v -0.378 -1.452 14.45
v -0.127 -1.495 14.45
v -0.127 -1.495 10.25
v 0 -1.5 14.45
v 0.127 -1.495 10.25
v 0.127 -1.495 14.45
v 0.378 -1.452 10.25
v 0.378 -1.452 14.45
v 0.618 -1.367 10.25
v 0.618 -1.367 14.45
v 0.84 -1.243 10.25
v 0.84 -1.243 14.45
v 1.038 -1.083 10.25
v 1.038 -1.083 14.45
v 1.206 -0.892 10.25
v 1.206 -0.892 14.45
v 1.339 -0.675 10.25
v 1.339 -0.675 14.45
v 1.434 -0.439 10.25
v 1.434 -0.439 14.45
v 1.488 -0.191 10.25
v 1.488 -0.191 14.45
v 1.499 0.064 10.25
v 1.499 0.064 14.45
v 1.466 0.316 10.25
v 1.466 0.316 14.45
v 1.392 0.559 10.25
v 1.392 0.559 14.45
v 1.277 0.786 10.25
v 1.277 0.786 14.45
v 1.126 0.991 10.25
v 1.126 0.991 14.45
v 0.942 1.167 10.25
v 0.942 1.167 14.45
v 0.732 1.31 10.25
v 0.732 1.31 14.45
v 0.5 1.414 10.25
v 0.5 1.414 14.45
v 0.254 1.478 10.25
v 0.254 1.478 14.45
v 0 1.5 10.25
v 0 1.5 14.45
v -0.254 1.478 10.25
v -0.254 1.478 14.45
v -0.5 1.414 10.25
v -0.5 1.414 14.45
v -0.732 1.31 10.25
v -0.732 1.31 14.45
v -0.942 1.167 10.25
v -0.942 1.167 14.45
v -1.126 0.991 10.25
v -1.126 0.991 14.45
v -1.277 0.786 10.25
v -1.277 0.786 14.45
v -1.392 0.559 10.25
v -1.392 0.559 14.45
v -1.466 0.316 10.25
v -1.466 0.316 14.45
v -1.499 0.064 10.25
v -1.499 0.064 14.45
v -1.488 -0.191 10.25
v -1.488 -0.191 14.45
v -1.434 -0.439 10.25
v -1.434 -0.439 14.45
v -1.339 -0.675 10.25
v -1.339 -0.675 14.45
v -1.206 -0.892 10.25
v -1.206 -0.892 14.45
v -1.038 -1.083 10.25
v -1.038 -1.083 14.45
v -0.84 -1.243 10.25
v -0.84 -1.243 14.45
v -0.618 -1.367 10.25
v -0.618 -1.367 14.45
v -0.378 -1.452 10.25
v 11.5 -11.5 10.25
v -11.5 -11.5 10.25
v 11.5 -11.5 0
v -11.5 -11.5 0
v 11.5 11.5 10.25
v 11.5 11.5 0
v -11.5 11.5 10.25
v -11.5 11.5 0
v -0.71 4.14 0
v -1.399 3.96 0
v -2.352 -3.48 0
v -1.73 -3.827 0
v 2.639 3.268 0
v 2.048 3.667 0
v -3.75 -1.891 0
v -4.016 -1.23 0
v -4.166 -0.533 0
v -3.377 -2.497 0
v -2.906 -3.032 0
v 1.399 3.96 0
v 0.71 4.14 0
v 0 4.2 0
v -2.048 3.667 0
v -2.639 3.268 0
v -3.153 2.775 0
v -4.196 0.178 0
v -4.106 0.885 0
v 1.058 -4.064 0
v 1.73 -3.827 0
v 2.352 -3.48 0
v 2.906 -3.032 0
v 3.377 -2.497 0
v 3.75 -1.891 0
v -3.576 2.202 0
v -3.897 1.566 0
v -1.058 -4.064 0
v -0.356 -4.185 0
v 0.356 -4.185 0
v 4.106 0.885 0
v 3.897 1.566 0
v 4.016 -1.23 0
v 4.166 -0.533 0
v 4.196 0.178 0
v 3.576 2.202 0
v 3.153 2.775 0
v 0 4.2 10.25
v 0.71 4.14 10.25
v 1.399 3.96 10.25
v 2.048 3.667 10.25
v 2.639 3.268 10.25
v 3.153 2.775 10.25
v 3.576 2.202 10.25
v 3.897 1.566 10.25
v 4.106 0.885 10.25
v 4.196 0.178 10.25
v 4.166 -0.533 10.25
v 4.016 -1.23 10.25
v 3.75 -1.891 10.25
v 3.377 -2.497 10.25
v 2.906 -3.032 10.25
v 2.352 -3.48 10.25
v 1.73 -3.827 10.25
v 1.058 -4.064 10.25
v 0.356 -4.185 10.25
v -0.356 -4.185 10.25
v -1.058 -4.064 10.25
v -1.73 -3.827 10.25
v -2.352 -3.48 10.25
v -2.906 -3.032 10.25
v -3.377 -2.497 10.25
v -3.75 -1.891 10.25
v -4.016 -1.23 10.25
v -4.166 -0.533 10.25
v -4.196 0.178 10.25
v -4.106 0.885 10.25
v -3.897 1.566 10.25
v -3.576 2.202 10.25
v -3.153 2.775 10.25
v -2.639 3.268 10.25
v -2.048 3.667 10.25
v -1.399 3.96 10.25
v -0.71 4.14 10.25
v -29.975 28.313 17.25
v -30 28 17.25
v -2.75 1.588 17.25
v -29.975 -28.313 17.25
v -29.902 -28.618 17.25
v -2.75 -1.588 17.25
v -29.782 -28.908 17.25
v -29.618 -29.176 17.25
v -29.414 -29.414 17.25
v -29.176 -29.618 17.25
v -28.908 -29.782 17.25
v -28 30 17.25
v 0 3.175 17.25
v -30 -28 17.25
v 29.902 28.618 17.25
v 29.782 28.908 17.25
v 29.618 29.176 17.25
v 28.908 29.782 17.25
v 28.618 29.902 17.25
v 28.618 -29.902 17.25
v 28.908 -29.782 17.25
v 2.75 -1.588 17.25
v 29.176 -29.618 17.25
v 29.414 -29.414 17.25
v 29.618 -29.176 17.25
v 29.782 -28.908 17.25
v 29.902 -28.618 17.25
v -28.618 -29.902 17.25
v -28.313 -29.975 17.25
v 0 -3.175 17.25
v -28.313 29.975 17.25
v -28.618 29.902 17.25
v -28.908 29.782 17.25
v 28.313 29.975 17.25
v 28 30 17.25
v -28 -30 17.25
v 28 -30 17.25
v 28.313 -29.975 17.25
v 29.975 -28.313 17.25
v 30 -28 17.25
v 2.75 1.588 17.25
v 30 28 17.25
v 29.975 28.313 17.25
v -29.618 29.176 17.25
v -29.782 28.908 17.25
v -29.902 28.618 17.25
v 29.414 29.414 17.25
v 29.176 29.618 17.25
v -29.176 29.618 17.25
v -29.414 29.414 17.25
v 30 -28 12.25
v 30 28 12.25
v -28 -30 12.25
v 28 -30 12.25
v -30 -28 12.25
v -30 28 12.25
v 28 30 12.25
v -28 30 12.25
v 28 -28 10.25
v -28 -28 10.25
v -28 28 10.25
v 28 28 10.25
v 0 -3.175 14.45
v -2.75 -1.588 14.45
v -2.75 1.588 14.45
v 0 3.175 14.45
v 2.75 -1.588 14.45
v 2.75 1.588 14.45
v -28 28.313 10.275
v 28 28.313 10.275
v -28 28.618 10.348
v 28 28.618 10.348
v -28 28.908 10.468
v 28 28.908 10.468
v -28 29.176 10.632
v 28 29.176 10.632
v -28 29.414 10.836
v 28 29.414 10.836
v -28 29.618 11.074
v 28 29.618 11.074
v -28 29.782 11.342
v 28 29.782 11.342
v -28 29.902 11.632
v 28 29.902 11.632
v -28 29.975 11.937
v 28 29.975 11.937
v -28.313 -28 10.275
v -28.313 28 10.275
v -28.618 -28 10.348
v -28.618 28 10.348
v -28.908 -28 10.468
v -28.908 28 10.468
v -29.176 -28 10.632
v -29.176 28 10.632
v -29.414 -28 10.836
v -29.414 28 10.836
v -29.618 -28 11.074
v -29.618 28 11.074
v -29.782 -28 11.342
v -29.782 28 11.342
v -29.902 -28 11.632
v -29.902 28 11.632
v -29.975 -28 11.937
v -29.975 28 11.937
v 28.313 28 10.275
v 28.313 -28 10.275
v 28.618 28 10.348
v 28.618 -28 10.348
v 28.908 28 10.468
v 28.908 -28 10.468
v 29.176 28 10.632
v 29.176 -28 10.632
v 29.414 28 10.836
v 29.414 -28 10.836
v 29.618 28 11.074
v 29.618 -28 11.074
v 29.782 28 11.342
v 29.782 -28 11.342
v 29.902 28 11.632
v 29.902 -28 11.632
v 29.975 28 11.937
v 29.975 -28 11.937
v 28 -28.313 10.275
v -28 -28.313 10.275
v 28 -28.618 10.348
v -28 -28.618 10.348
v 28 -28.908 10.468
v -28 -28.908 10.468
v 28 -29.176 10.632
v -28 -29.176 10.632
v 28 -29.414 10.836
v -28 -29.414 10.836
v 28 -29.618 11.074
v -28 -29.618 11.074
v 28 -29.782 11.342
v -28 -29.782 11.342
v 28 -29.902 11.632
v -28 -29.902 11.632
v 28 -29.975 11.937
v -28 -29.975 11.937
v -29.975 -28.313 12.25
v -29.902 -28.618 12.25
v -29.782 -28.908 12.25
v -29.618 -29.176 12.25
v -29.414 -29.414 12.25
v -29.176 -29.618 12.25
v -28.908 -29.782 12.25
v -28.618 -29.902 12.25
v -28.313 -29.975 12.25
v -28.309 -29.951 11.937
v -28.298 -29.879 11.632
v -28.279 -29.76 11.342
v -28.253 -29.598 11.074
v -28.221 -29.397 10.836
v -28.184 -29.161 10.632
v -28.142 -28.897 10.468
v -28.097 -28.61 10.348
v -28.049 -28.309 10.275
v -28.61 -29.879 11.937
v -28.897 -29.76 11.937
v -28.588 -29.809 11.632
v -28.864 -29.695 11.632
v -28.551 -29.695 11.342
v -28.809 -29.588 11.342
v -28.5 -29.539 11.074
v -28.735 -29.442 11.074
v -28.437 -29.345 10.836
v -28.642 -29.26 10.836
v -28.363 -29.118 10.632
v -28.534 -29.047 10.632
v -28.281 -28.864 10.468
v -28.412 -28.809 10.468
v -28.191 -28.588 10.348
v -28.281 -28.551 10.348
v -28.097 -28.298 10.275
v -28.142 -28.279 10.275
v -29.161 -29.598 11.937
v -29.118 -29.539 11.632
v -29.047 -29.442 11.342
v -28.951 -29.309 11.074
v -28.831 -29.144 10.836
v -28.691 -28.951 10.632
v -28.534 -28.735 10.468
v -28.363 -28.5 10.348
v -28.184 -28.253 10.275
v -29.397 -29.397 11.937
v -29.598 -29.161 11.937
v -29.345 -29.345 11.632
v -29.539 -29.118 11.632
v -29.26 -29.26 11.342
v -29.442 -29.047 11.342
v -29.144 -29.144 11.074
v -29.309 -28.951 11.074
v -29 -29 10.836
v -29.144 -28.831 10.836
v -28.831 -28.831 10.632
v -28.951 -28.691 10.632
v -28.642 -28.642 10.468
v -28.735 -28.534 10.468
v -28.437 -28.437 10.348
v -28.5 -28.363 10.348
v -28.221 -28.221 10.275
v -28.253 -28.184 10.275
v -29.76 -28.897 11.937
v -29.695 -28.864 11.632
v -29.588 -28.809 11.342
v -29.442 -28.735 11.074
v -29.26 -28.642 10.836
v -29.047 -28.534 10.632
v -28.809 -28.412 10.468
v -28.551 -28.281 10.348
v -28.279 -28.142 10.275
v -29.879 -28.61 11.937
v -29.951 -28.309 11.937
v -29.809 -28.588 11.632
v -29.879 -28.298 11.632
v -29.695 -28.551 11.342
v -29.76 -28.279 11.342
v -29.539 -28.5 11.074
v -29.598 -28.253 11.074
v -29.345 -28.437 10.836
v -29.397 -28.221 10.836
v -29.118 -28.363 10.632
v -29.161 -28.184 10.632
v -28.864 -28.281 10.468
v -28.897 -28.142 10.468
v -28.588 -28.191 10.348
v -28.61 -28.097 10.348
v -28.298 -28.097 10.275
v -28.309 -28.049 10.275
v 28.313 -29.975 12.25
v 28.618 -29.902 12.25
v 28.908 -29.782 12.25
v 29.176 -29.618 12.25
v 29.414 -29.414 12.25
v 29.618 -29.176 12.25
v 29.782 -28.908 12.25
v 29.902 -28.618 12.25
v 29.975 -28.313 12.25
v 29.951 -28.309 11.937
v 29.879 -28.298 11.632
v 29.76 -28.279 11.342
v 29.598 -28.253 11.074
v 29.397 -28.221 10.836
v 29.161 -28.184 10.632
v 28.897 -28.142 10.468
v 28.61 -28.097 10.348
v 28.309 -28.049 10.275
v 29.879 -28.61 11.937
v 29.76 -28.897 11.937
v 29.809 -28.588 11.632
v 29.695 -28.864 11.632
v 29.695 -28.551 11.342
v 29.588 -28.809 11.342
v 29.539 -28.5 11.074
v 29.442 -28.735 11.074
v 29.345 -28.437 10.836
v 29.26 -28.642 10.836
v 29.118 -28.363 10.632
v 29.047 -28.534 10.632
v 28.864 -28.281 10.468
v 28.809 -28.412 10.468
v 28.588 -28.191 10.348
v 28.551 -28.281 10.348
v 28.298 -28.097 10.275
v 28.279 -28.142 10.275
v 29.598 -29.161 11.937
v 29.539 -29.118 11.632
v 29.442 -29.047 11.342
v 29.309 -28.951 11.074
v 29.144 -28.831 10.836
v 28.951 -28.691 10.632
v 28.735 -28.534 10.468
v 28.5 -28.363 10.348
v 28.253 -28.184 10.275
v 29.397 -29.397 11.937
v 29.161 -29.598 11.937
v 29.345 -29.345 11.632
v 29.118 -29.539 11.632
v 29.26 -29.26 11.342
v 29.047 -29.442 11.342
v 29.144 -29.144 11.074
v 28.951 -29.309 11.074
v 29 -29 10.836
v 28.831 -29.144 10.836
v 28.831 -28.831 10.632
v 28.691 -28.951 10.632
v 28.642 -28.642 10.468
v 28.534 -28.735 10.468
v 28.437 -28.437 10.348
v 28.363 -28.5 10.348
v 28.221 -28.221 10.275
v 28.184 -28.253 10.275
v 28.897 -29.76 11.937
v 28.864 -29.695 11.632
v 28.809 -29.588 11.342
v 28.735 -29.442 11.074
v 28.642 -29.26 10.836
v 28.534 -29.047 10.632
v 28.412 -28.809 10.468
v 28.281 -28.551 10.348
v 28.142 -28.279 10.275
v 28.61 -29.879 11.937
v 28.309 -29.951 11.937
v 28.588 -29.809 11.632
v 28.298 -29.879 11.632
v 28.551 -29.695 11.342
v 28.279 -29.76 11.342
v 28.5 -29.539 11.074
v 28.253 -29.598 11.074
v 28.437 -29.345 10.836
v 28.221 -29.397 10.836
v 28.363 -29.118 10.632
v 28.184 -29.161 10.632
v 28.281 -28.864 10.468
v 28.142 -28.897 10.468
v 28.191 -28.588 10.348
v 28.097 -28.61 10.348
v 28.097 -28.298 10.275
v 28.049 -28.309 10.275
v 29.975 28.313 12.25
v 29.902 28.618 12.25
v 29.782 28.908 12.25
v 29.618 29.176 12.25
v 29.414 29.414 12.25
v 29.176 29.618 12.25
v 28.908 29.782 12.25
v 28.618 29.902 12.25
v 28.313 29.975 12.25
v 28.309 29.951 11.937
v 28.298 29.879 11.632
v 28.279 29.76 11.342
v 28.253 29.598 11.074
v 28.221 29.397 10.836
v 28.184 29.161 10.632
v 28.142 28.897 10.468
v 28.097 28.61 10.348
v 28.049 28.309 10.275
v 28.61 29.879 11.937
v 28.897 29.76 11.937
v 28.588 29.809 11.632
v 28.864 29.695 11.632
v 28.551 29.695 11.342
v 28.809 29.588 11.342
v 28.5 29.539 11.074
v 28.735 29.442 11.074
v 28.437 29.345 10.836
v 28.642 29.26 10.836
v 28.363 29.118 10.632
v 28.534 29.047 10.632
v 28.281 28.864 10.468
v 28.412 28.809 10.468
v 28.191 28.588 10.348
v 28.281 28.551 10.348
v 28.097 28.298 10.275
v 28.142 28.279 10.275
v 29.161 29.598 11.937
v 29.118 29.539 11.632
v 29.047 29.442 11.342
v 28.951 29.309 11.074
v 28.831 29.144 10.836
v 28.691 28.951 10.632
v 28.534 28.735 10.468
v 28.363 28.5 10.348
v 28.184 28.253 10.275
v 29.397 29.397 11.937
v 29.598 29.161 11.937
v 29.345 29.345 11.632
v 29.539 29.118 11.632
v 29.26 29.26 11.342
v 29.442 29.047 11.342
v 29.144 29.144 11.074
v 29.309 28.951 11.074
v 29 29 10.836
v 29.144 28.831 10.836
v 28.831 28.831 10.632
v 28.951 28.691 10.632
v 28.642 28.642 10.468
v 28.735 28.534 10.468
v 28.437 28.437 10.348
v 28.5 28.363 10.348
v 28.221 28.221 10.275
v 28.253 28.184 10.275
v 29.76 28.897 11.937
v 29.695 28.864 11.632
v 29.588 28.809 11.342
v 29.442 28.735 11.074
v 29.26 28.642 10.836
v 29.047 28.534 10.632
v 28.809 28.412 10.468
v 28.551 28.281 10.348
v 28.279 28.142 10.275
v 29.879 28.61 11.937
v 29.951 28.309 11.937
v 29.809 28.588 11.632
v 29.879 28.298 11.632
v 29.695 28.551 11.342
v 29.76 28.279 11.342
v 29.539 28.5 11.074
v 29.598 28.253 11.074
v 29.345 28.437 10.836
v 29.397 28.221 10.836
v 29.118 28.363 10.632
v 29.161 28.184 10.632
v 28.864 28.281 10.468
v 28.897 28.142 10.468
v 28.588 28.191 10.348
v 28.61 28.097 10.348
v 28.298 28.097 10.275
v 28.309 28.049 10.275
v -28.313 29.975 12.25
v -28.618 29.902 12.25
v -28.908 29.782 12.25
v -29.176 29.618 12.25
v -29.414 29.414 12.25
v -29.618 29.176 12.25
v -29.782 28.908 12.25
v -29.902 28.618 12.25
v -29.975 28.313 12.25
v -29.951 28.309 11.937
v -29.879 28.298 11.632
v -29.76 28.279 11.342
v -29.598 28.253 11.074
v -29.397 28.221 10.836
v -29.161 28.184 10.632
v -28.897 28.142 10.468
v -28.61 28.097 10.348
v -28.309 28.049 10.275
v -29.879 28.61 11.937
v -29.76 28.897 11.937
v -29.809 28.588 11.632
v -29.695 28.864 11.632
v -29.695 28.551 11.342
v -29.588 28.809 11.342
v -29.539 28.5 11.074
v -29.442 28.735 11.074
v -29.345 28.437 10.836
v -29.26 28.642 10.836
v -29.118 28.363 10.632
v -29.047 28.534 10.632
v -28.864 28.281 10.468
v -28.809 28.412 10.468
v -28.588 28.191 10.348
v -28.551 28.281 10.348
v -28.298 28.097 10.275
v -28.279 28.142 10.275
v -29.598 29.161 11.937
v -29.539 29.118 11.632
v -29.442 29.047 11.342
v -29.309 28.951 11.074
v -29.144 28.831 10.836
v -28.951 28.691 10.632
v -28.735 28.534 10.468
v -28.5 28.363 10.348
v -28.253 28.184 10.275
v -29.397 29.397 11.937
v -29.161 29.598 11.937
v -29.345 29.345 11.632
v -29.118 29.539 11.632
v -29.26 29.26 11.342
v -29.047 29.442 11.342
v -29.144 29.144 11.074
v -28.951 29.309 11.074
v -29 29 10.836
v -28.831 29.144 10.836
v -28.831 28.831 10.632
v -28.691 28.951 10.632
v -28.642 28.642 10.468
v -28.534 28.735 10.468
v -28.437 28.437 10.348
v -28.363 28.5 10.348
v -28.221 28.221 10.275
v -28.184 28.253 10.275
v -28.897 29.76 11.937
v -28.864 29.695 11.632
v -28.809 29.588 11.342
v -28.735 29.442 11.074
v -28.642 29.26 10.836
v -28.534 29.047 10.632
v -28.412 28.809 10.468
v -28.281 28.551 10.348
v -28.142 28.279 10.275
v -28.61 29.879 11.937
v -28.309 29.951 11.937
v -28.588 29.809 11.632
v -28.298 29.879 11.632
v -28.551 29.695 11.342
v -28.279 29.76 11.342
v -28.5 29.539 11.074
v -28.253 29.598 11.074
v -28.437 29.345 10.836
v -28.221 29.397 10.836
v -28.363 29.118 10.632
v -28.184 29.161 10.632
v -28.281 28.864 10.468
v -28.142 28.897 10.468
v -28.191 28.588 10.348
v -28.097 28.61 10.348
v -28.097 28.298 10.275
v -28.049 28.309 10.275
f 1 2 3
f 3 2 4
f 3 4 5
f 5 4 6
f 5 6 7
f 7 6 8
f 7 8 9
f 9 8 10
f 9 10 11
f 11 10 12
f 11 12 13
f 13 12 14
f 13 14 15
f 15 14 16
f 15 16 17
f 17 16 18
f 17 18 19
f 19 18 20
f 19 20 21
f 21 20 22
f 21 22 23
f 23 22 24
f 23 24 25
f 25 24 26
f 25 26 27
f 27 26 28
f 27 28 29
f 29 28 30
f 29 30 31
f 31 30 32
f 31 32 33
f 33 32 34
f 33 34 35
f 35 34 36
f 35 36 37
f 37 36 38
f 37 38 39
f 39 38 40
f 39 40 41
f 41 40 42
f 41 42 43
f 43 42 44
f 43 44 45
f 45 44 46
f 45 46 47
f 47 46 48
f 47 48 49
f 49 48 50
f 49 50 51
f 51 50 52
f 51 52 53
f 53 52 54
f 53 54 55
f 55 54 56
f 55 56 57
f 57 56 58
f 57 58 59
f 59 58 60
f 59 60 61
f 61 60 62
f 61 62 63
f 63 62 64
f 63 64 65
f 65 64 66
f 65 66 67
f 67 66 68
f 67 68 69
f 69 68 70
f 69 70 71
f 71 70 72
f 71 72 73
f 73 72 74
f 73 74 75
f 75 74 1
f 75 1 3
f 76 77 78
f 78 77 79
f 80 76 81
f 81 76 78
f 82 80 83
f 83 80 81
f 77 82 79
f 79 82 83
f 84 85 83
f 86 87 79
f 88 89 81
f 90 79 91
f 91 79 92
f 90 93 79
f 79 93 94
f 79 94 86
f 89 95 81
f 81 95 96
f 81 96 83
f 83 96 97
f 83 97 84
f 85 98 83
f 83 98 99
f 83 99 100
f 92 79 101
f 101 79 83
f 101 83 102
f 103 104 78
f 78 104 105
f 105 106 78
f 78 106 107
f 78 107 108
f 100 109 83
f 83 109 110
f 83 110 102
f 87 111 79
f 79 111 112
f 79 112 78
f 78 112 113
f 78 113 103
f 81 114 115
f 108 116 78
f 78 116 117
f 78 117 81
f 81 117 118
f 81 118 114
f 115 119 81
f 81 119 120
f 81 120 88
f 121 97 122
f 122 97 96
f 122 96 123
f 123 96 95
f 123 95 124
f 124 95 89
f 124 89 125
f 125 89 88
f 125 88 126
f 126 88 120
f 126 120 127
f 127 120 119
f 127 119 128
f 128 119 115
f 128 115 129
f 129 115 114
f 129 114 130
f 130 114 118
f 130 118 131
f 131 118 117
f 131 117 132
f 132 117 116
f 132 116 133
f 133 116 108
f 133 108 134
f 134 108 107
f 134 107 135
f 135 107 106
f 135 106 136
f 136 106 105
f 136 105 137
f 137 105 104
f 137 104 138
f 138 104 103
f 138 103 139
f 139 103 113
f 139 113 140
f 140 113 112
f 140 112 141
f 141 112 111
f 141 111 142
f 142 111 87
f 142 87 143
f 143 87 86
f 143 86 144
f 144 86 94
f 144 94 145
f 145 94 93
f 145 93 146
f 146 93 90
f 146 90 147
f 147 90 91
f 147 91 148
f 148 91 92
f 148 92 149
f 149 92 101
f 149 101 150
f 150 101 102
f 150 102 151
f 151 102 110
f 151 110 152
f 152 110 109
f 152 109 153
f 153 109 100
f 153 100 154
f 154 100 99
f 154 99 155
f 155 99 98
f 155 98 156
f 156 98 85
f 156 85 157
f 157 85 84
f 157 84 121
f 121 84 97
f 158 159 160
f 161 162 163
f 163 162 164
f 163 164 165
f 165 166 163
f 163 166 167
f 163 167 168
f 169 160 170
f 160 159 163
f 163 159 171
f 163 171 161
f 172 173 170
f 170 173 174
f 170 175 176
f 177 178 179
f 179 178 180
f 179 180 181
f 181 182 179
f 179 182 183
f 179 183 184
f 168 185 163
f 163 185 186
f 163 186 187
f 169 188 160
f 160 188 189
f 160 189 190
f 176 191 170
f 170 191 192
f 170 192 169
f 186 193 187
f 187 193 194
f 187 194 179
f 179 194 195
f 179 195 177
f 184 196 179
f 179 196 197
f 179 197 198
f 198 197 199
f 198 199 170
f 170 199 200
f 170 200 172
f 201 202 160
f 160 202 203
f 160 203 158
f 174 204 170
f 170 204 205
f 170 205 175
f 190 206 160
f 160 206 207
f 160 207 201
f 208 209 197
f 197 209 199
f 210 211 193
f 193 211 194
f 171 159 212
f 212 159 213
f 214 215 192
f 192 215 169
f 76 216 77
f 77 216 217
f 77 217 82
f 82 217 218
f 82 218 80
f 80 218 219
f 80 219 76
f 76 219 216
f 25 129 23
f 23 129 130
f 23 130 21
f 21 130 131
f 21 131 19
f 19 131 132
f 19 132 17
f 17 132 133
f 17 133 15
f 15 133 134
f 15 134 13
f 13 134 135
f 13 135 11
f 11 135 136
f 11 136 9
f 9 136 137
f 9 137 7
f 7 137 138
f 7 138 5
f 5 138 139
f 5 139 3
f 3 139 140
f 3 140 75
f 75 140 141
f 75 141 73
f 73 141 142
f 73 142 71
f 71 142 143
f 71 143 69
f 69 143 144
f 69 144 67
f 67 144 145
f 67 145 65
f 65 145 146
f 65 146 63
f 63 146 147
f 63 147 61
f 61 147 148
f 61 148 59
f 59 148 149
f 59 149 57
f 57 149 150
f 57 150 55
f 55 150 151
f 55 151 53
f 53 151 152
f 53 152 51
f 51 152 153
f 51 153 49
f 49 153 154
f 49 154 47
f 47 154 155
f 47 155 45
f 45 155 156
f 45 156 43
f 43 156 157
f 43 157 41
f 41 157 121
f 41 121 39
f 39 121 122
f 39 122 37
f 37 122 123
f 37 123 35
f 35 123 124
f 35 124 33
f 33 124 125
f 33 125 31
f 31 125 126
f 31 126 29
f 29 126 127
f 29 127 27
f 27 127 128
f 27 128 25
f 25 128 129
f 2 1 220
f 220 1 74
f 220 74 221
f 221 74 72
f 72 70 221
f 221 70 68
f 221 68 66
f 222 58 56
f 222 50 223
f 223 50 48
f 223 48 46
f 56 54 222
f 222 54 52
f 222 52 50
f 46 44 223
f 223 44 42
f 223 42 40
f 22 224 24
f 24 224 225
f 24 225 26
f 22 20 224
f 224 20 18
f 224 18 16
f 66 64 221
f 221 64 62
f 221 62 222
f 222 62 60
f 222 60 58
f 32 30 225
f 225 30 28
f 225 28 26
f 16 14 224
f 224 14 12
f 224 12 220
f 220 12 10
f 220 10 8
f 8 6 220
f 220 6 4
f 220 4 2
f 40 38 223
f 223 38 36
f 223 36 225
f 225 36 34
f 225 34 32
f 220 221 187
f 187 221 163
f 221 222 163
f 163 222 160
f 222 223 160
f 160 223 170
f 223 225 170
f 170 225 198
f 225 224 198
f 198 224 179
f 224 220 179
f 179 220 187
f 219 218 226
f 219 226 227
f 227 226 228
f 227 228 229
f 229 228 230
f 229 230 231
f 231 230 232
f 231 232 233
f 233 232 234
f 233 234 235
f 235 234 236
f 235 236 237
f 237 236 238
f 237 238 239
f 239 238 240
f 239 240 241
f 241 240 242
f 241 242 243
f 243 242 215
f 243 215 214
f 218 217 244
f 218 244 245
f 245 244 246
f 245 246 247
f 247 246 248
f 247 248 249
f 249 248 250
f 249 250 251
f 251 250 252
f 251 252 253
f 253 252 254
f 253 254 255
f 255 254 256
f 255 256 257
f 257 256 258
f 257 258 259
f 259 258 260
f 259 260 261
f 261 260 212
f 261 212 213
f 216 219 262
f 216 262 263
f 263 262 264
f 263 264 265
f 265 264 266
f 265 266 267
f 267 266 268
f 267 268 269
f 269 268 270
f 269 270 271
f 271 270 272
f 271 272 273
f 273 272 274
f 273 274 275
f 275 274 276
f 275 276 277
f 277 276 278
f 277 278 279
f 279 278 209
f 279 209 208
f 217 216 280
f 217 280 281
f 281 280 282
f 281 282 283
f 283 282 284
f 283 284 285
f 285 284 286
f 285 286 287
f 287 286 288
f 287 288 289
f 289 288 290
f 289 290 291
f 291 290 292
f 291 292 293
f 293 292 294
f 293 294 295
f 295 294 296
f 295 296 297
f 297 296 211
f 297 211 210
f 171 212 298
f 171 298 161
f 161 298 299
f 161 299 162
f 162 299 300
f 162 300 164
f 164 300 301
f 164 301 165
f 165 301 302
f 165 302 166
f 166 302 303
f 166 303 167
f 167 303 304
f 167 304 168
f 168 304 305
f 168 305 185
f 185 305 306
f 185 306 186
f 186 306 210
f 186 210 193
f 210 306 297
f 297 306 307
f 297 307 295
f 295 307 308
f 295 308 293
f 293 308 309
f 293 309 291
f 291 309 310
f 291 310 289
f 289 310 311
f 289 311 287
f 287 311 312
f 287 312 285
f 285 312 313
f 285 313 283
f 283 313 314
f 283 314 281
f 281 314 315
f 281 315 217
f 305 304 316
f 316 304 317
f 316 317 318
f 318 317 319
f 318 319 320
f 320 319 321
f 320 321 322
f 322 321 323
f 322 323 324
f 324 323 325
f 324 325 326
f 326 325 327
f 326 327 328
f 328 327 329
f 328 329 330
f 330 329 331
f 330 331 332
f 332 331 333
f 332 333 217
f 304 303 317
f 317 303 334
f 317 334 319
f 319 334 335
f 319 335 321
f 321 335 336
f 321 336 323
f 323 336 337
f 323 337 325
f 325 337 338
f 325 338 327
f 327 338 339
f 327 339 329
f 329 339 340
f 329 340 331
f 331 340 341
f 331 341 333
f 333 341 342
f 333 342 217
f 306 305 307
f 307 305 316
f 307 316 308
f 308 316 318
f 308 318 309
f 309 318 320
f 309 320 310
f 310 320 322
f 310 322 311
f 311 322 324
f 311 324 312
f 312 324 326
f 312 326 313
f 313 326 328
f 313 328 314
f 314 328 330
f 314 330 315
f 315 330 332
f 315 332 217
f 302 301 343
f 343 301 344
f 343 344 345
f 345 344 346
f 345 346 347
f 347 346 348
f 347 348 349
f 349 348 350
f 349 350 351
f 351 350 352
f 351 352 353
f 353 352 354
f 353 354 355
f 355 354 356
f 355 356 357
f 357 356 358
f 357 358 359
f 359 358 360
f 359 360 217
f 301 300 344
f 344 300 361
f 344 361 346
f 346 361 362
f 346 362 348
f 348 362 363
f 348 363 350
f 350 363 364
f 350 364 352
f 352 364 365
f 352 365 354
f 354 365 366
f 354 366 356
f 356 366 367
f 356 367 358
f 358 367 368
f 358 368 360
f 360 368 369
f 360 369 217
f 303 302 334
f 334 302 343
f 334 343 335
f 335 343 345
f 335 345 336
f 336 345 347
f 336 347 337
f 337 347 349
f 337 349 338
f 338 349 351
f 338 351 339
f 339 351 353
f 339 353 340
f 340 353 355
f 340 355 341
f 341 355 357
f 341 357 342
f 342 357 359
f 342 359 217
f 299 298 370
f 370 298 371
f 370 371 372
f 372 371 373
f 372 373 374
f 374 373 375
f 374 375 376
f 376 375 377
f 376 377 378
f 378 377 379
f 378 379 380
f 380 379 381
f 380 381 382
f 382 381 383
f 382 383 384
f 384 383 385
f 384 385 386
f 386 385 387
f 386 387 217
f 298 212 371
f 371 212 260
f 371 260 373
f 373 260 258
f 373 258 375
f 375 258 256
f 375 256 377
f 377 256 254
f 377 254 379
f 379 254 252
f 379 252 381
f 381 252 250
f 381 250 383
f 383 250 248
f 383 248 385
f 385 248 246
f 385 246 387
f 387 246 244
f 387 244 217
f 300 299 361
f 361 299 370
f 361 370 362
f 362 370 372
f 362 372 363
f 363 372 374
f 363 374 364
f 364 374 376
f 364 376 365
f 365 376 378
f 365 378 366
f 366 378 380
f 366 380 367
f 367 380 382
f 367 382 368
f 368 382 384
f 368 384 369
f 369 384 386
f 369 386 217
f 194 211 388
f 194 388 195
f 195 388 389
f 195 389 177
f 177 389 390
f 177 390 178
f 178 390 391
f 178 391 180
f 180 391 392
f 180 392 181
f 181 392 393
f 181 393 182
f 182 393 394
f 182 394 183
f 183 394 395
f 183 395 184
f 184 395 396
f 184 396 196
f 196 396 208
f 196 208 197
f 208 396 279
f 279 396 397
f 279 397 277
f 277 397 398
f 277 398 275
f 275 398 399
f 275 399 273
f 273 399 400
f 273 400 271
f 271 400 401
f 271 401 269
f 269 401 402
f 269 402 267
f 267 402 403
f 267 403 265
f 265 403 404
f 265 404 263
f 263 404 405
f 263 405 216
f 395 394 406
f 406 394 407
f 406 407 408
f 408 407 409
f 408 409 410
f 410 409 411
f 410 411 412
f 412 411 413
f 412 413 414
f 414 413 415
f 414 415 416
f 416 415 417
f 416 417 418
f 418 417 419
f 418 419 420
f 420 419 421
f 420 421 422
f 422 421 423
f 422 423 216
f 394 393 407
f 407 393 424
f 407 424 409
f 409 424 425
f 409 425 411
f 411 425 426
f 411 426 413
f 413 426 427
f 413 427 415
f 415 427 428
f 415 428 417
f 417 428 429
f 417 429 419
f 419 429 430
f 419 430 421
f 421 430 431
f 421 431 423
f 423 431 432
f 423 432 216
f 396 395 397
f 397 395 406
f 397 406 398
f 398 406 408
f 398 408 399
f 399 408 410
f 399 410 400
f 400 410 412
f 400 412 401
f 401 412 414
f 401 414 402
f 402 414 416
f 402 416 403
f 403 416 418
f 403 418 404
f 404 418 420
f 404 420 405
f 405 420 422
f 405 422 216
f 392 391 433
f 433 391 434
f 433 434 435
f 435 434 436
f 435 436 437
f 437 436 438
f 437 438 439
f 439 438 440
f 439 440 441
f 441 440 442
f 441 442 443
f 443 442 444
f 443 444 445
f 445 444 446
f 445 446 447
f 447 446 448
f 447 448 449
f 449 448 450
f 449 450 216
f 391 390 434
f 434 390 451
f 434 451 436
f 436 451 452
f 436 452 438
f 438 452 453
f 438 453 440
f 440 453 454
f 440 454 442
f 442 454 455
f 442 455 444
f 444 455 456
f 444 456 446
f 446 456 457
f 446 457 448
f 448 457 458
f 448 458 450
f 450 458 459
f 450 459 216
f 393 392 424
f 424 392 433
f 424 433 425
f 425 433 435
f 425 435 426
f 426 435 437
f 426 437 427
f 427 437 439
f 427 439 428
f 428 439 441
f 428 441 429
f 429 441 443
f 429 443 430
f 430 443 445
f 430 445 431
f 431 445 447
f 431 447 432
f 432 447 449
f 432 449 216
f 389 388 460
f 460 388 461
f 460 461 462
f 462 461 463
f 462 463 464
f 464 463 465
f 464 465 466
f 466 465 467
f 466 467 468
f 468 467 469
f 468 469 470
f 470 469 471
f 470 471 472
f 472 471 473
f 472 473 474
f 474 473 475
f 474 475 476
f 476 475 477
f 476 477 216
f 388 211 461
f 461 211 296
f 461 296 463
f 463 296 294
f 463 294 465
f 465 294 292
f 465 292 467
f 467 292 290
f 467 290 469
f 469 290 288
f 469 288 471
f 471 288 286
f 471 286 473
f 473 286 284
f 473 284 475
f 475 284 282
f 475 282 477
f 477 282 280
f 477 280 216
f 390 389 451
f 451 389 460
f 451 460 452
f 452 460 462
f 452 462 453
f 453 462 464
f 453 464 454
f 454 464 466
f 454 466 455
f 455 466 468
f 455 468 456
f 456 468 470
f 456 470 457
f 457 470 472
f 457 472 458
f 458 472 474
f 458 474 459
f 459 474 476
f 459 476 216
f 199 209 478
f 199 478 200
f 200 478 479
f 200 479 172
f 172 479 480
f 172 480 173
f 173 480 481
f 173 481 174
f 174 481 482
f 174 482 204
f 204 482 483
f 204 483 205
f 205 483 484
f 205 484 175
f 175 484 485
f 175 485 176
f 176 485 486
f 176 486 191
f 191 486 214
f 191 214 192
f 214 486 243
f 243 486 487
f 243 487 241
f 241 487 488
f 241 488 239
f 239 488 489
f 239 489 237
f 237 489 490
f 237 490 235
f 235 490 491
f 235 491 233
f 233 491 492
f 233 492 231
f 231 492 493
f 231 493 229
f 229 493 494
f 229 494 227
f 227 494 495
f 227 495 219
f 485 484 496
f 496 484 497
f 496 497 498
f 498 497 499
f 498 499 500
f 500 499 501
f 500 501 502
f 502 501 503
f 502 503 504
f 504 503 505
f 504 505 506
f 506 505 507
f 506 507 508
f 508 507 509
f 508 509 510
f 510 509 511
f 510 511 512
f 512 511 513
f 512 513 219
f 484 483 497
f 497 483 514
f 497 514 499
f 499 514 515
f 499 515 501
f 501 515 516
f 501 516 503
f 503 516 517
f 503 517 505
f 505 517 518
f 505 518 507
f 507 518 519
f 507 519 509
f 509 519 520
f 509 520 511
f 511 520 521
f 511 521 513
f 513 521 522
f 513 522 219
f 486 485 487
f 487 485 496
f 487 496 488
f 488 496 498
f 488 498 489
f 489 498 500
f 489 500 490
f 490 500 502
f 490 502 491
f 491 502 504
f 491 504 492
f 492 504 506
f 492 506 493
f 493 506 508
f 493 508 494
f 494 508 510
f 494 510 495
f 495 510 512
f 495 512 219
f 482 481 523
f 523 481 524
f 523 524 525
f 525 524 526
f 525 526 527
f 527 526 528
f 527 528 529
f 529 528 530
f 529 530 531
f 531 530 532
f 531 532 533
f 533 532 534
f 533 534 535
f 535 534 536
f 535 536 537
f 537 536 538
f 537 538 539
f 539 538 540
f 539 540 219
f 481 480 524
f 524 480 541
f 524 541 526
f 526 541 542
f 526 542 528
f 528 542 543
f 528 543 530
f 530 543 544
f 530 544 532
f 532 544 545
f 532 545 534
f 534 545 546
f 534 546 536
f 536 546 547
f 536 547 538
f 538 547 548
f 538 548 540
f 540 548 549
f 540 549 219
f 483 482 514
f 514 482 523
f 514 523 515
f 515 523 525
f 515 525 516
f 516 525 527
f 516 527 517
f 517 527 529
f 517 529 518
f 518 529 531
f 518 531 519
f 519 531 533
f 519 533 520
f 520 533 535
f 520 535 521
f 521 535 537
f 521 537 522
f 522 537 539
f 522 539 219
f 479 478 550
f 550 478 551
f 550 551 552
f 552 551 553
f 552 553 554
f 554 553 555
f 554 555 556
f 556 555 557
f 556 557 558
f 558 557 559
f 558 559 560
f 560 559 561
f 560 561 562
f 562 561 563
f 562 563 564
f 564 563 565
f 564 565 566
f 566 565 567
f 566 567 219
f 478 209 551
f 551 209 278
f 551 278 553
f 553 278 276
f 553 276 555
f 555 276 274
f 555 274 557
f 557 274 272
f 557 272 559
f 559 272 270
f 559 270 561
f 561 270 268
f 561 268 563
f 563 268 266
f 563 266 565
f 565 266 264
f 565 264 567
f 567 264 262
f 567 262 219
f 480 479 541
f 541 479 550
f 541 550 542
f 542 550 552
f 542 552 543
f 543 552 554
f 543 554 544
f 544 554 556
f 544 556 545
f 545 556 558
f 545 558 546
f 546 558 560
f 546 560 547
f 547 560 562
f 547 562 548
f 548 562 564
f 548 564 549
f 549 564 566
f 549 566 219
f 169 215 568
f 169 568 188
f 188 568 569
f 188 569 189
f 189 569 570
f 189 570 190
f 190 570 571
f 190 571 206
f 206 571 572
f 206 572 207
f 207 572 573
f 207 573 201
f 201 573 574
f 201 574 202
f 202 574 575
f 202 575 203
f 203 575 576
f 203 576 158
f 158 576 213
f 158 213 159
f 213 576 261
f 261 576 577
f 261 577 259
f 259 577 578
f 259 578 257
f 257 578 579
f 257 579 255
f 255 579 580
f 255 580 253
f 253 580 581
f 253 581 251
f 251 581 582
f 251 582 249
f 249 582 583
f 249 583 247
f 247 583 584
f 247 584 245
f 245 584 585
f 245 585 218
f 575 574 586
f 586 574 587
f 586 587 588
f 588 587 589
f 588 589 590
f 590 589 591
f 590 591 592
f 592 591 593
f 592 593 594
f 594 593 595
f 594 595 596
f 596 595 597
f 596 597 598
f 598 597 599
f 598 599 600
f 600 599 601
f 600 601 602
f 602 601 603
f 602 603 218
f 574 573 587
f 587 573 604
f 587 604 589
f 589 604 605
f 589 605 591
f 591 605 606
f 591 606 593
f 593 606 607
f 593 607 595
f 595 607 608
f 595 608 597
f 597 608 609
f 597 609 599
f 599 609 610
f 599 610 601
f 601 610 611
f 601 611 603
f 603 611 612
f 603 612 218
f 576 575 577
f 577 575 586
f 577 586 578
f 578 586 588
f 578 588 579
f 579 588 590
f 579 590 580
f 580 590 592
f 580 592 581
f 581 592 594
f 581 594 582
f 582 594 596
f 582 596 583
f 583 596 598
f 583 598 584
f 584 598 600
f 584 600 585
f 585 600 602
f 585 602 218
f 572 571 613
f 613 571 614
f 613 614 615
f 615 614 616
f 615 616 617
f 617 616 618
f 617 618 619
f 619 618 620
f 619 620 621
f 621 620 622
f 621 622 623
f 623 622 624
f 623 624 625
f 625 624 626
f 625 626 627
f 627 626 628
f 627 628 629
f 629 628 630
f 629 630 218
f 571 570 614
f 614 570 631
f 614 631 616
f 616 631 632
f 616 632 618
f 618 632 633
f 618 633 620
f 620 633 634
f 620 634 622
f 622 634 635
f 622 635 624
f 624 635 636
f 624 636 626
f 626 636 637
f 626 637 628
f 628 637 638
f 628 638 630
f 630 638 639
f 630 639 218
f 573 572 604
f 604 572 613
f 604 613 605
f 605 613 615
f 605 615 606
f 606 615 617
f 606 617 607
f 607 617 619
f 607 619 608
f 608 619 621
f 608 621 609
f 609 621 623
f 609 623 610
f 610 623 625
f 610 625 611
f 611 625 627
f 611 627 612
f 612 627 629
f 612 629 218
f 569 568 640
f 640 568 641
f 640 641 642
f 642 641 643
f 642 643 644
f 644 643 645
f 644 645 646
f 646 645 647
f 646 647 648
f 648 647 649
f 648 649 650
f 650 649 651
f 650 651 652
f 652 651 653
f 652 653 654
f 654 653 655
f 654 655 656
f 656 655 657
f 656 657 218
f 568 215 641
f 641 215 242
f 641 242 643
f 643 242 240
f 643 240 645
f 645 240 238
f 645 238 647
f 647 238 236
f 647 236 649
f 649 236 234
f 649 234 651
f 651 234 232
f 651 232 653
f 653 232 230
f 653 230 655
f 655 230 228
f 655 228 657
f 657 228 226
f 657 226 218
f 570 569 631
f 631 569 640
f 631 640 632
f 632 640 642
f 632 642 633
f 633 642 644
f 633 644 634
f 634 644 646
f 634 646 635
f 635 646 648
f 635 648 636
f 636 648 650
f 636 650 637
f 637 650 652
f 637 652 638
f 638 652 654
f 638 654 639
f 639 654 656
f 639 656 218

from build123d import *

# Parameters (mm, degrees)
ESBO_O1_W                = 23
ESBO_O1_H                = 23
RESSALTO_EXTRUS_O1_DEPTH = 10.25
CORTE_EXTRUS_O1_REACH    = 21.224
ESBO_O2_R                = 4.2
ESBO_O3_W                = 60
ESBO_O3_H                = 60
RESSALTO_EXTRUS_O2_DEPTH = 7
CORTE_EXTRUS_O2_REACH    = 45.647
ESBO_O4_R                = 1.5
CORTE_EXTRUS_O3_DEPTH    = 2.8
FILETE1_R                = 2
FILETE2_R                = 2


with BuildPart() as part:
    # Esboço1 → Ressalto-extrusão1 (new body)
    with BuildSketch(Plane.XY):
        Rectangle(ESBO_O1_W, ESBO_O1_H)
    extrude(amount=RESSALTO_EXTRUS_O1_DEPTH)

    # Esboço2 → Corte-extrusão1 (cut, up to next)
    with BuildSketch(Plane(origin=(0, 0, 0), x_dir=(-1, 0, 0), z_dir=(0, 0, -1)), mode=Mode.PRIVATE) as corte_extrus_o1_sk1:
        Circle(ESBO_O2_R)
    corte_extrus_o1_tool1 = extrude(corte_extrus_o1_sk1.sketch, amount=-CORTE_EXTRUS_O1_REACH, mode=Mode.PRIVATE) & part.part
    add(corte_extrus_o1_tool1.solids().sort_by_distance((0, 0, 0))[0], mode=Mode.SUBTRACT)

    # Esboço3 → Ressalto-extrusão2 (add)
    with BuildSketch(Plane.XY.offset(10.25)):
        Rectangle(ESBO_O3_W, ESBO_O3_H)
    extrude(amount=RESSALTO_EXTRUS_O2_DEPTH)

    # Esboço4 → Corte-extrusão2 (cut, up to next)
    with BuildSketch(Plane(origin=(0, 0, 10.25), x_dir=(-1, 0, 0), z_dir=(0, 0, -1)), mode=Mode.PRIVATE) as corte_extrus_o2_sk1:
        Circle(ESBO_O4_R)
    corte_extrus_o2_tool1 = extrude(corte_extrus_o2_sk1.sketch, amount=-CORTE_EXTRUS_O2_REACH, mode=Mode.PRIVATE) & part.part
    add(corte_extrus_o2_tool1.solids().sort_by_distance((0, 0, 10.25))[0], mode=Mode.SUBTRACT)

    # Esboço5 → Corte-extrusão3 (cut)
    with BuildSketch(Plane.XY.offset(17.25)):
        Polygon((3.290896534, 0), (1.645448267, 2.85), (-1.645448267, 2.85), (-3.290896534, 0), (-1.645448267, -2.85), (1.645448267, -2.85), align=None)
    extrude(amount=-CORTE_EXTRUS_O3_DEPTH, mode=Mode.SUBTRACT)

    # Filete1
    filete1_edges = [part.edges().sort_by_distance(p)[0] for p in [
        (-30, 0, 10.25),
        (0, -30, 10.25),
        (30, 0, 10.25),
        (0, 30, 10.25),
    ]]
    fillet(filete1_edges, radius=FILETE1_R)

    # Filete2
    # the kernel refuses this fillet: 2 mm, written as the material it takes off along each edge
    with BuildSketch(Plane(origin=(-28, -28, 12.25), x_dir=(-1, 0, 0), z_dir=(0, -1, 0))) as filete2_piece_1_section:
        Polygon((0, 0), (FILETE2_R, 0), (FILETE2_R, FILETE2_R), (0, FILETE2_R), align=None)
    filete2_piece_1 = extrude(amount=FILETE2_R, mode=Mode.PRIVATE)
    filete2_piece_1 = filete2_piece_1 - Plane(origin=(-28, -28, 12.25), x_dir=(0.7071067811865475, 0, 0.7071067811865475), z_dir=(0, -1, 0)) * Sphere(FILETE2_R, mode=Mode.PRIVATE)
    add(filete2_piece_1, mode=Mode.SUBTRACT)
    with BuildSketch(Plane(origin=(-28, 28, 12.25), x_dir=(0, 1, 0), z_dir=(-1, 0, 0))) as filete2_piece_2_section:
        Polygon((0, 0), (FILETE2_R, 0), (FILETE2_R, FILETE2_R), (0, FILETE2_R), align=None)
    filete2_piece_2 = extrude(amount=FILETE2_R, mode=Mode.PRIVATE)
    filete2_piece_2 = filete2_piece_2 - Plane(origin=(-28, 28, 12.25), x_dir=(0, -0.7071067811865475, 0.7071067811865475), z_dir=(-1, 0, 0)) * Sphere(FILETE2_R, mode=Mode.PRIVATE)
    add(filete2_piece_2, mode=Mode.SUBTRACT)
    with BuildSketch(Plane(origin=(28, -28, 12.25), x_dir=(1, 0, 0), z_dir=(0, -1, 0))) as filete2_piece_3_section:
        Polygon((0, 0), (FILETE2_R, 0), (FILETE2_R, -FILETE2_R), (0, -FILETE2_R), align=None)
    filete2_piece_3 = extrude(amount=FILETE2_R, mode=Mode.PRIVATE)
    filete2_piece_3 = filete2_piece_3 - Plane(origin=(28, -28, 12.25), x_dir=(-0.7071067811865475, 0, 0.7071067811865475), z_dir=(0, -1, 0)) * Sphere(FILETE2_R, mode=Mode.PRIVATE)
    add(filete2_piece_3, mode=Mode.SUBTRACT)
    with BuildSketch(Plane(origin=(28, 28, 12.25), x_dir=(0, 1, 0), z_dir=(1, 0, 0))) as filete2_piece_4_section:
        Polygon((0, 0), (FILETE2_R, 0), (FILETE2_R, -FILETE2_R), (0, -FILETE2_R), align=None)
    filete2_piece_4 = extrude(amount=FILETE2_R, mode=Mode.PRIVATE)
    filete2_piece_4 = filete2_piece_4 - Plane(origin=(28, 28, 12.25), x_dir=(0, -0.7071067811865475, 0.7071067811865475), z_dir=(1, 0, 0)) * Sphere(FILETE2_R, mode=Mode.PRIVATE)
    add(filete2_piece_4, mode=Mode.SUBTRACT)
    with BuildSketch(Plane(origin=(-30, 30, 12.25), x_dir=(0, -1, 0), z_dir=(0, 0, 1)), Plane(origin=(-30, -30, 12.25), x_dir=(1, 0, 0), z_dir=(0, 0, 1))) as filete2_piece_5:
        with BuildLine():
            CenterArc((FILETE2_R, FILETE2_R), FILETE2_R, 180, 90)
            Line((0, FILETE2_R), (0, 0))
            Line((0, 0), (FILETE2_R, 0))
        make_face()
    extrude(amount=10, mode=Mode.SUBTRACT)
    with BuildSketch(Plane(origin=(30, -30, 12.25), x_dir=(-1, 0, 0), z_dir=(0, 0, 1)), Plane(origin=(30, 30, 12.25), x_dir=(0, -1, 0), z_dir=(0, 0, 1))) as filete2_piece_6:
        with BuildLine():
            CenterArc((FILETE2_R, -FILETE2_R), FILETE2_R, 90, 90)
            Line((0, -FILETE2_R), (0, 0))
            Line((0, 0), (FILETE2_R, 0))
        make_face()
    extrude(amount=10, mode=Mode.SUBTRACT)


solid = part.part
